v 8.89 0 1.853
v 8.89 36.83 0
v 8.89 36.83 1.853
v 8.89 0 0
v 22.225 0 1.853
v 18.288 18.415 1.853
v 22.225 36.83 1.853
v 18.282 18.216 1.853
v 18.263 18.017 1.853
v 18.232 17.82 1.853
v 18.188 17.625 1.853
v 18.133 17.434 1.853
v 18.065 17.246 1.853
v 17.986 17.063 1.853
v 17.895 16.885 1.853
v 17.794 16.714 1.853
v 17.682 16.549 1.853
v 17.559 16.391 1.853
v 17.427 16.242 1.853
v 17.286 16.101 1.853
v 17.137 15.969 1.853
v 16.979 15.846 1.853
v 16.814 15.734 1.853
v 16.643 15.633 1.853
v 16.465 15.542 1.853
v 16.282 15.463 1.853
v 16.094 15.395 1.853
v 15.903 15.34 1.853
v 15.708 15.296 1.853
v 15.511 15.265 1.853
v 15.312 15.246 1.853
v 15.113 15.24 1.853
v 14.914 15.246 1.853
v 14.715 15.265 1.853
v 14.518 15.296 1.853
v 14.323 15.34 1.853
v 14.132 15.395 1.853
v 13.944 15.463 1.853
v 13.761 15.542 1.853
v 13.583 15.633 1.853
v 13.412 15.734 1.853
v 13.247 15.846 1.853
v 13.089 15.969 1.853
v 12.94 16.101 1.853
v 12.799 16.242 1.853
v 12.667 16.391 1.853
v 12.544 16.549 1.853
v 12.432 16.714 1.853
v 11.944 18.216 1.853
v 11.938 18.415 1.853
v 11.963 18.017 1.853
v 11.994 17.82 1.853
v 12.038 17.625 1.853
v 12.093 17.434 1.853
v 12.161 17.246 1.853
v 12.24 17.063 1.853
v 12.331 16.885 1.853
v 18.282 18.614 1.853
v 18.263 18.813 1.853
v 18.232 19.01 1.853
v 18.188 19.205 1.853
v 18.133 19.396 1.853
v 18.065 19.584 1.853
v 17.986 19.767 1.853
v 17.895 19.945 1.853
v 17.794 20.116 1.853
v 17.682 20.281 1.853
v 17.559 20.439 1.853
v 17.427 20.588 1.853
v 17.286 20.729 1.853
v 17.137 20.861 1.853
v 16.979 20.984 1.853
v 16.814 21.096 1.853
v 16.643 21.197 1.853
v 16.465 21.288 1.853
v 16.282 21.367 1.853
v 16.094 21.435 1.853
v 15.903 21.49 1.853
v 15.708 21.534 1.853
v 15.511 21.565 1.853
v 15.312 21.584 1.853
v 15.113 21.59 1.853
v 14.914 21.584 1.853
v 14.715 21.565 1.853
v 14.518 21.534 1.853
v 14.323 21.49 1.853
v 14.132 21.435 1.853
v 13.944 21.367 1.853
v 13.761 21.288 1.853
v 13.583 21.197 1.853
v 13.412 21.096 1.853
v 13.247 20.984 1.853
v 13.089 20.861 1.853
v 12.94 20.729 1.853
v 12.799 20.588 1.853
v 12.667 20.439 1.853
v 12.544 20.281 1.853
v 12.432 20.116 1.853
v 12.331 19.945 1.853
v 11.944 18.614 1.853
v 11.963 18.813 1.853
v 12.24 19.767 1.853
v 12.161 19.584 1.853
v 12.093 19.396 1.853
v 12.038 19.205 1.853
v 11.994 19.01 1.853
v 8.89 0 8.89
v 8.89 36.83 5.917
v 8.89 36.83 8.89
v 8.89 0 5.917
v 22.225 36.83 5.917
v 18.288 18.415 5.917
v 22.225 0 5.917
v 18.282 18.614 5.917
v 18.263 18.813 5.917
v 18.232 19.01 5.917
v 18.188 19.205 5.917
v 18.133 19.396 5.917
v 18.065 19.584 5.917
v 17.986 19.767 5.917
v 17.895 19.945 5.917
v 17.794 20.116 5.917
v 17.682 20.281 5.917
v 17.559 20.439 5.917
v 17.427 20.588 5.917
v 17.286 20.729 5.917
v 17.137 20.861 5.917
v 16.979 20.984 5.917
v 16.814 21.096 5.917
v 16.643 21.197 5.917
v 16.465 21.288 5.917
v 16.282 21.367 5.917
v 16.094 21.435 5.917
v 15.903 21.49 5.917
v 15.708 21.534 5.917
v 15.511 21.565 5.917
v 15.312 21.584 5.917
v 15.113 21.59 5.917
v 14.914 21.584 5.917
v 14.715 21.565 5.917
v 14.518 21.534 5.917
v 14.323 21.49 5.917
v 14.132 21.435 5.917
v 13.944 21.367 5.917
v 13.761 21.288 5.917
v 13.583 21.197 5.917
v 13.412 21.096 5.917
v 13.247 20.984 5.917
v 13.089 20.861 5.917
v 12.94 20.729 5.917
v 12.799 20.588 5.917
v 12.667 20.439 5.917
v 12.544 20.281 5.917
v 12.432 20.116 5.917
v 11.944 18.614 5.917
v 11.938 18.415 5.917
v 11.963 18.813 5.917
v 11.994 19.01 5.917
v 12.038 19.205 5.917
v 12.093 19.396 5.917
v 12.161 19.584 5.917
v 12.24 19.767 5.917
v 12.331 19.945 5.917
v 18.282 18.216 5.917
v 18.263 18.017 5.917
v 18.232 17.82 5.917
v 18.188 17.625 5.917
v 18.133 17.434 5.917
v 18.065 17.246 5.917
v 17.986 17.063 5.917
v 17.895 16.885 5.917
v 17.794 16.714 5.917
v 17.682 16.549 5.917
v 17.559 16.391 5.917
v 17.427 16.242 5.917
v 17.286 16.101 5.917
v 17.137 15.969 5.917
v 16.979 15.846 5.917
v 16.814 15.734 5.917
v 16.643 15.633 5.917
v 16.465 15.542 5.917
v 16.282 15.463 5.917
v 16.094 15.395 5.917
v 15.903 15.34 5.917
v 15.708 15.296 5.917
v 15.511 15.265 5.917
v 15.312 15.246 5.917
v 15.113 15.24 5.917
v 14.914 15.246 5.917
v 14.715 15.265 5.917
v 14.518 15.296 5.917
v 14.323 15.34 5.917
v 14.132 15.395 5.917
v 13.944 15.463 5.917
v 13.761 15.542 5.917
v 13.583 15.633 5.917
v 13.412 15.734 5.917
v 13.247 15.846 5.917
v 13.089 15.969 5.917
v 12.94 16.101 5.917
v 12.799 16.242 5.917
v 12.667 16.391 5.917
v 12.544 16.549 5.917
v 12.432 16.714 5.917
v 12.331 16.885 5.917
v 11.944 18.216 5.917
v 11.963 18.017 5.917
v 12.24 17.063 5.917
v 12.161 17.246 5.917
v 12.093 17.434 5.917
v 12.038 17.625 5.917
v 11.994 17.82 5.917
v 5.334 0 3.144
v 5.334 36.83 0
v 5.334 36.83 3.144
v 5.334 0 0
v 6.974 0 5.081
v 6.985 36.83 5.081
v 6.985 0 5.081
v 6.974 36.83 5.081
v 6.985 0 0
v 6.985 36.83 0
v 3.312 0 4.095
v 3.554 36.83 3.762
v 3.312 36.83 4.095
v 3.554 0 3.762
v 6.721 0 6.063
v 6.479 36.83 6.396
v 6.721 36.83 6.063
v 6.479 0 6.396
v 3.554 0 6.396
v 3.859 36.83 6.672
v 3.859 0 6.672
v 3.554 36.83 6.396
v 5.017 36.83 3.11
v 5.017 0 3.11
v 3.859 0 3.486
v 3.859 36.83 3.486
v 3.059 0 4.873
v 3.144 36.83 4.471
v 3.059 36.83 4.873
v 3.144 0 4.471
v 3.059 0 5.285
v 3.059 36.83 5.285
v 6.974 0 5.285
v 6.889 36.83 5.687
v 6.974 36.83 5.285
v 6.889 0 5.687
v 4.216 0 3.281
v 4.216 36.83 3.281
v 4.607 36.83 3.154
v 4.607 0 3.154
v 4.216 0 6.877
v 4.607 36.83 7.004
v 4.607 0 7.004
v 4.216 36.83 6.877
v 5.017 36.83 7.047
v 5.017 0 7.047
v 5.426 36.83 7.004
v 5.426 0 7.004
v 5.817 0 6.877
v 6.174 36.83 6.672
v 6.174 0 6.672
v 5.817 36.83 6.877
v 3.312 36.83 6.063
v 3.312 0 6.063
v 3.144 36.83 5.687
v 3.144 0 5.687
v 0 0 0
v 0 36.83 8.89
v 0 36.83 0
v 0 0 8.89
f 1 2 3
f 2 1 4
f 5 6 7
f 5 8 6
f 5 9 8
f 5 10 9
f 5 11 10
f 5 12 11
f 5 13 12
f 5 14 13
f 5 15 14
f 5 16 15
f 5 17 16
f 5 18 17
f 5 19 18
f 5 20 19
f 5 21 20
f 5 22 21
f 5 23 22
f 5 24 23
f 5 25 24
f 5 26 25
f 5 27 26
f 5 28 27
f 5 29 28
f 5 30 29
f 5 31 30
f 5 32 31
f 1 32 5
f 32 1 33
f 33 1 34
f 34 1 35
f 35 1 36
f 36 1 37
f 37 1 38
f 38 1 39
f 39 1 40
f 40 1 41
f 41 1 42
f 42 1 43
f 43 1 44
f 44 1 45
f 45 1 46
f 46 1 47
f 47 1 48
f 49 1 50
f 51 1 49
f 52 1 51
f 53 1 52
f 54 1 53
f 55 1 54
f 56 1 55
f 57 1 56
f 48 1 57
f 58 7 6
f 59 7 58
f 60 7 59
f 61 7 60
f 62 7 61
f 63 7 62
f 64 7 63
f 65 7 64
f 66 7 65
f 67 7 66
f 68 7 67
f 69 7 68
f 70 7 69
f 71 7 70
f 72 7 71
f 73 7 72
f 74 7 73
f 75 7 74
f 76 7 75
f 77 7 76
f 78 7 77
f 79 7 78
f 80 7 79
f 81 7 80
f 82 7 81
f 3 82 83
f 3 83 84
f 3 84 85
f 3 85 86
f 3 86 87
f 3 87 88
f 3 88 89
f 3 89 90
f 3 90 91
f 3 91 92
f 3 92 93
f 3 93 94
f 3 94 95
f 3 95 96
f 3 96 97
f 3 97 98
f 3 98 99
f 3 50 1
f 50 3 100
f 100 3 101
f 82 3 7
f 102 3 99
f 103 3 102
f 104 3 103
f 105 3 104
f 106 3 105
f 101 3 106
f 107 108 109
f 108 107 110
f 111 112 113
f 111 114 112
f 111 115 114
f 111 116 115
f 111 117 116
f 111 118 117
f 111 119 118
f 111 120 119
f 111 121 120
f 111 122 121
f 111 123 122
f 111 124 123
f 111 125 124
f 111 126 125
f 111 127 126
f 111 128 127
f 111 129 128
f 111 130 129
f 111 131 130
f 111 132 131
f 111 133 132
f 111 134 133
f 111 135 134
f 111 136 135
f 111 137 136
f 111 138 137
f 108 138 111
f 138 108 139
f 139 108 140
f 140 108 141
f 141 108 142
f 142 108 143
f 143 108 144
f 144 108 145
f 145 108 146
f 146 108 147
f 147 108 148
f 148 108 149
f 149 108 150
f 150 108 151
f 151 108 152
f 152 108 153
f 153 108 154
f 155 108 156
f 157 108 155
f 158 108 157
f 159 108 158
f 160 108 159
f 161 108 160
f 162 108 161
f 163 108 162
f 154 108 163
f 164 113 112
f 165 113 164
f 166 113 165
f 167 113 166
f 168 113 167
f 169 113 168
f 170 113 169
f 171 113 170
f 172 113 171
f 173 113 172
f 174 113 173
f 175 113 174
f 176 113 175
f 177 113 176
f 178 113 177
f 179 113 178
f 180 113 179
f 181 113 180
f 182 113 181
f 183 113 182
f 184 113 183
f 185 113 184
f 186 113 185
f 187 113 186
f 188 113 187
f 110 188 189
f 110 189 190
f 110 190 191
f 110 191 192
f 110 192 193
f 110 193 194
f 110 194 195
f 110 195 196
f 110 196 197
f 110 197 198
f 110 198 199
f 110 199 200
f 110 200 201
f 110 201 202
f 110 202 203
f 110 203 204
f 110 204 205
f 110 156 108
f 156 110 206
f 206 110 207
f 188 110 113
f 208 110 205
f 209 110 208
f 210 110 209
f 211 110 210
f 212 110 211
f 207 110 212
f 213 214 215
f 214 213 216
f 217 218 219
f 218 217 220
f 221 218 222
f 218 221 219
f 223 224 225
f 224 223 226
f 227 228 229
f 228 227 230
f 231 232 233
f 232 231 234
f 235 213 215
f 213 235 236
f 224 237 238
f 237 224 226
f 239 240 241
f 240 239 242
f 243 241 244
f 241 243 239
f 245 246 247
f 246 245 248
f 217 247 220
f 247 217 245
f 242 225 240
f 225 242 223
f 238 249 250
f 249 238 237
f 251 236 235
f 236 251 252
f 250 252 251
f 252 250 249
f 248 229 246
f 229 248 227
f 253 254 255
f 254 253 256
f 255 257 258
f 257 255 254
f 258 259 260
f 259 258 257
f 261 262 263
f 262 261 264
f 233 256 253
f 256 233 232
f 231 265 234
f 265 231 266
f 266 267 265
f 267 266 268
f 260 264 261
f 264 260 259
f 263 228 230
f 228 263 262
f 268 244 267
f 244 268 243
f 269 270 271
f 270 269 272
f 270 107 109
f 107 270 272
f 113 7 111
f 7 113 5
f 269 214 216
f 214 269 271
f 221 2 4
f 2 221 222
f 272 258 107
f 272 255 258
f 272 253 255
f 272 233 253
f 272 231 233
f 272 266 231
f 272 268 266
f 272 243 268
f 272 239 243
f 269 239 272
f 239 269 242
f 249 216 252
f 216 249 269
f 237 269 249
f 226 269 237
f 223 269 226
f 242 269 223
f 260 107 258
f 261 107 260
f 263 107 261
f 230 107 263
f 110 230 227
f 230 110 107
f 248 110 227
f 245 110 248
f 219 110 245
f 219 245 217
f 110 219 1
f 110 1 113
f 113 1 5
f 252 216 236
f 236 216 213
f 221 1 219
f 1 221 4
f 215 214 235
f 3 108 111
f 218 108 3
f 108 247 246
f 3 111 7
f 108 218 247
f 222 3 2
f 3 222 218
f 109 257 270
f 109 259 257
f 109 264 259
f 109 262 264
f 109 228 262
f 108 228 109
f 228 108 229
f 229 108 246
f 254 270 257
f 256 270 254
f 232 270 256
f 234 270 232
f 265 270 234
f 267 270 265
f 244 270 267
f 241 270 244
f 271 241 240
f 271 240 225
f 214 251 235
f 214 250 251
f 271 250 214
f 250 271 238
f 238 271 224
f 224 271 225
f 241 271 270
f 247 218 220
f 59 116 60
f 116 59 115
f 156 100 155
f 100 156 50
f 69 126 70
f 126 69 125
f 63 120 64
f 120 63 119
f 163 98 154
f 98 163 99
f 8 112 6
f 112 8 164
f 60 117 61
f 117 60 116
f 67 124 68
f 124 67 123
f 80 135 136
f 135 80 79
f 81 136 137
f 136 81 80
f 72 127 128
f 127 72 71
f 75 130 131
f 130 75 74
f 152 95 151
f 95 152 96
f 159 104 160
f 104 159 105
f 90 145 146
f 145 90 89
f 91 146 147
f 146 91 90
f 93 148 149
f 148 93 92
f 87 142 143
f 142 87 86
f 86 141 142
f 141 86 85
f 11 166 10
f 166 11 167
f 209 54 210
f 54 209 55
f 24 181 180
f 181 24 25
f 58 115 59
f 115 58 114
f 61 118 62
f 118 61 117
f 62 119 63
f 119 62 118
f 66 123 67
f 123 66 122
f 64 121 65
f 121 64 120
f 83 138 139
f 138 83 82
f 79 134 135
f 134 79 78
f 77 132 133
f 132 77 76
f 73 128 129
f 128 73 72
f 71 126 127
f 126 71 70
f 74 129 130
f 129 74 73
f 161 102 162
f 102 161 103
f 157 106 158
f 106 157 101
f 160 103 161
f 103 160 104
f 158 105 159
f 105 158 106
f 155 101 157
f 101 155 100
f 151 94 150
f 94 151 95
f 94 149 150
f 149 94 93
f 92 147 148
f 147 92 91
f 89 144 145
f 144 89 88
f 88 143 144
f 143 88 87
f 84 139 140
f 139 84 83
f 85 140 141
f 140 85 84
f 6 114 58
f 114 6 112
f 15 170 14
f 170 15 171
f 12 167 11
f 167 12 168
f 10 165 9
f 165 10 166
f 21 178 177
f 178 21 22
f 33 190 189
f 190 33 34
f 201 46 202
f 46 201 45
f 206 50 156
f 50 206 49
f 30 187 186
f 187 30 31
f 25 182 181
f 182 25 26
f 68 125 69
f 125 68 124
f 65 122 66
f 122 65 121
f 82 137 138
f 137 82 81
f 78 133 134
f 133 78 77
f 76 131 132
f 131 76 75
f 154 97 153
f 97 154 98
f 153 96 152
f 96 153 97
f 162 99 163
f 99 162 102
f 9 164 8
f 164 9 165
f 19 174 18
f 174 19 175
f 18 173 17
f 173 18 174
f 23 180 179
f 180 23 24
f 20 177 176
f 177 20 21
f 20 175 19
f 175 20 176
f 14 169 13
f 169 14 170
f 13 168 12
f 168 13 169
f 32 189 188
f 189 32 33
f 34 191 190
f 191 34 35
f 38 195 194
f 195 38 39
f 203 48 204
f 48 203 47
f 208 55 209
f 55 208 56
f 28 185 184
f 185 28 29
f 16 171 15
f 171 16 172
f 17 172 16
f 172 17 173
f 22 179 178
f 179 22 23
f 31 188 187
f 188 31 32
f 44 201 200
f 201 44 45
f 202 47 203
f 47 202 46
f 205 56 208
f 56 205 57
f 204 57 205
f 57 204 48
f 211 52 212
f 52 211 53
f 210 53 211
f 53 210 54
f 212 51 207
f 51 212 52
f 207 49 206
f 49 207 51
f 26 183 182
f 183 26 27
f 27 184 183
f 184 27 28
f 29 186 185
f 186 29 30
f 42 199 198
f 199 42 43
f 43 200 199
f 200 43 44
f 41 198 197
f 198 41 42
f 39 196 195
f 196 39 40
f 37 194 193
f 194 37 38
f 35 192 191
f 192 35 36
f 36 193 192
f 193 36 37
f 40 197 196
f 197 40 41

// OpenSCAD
// Casement window operator track slider for Andersen windows
// by Drmn4ea (drmn4ea at gmail)
// License: CC BY-SA

// This is a replacement for the small plastic slider whatchamacallit at the end of the 'operator arm'
// for Andersen casement windows. The original part tends to become brittle over time and eventually break off, especially on the sun-facing side of a house.

// This is a dirt simple design based on the original part's dimensions, with a couple 
// minor adjustments for 3D printing. I had the best results, or at least minimal post-finishing,
// printing the part vertically (i.e. with the P-shaped track slot against the buildplate) with a brim.

// Note to actually replace the original part requires cutting off the rivet that used to hold the original
// (unless it also crumbled away). Due to the tight clearance in the channel this retracts into when the window is closed,
// a special low-clearance nut+bolt may be needed (and/or the connector_thickness below tweaked to account for a taller standard bolt head).
// The suitable parts I found has several common names such as barrel nut, binding nut, binding barrel,
// sex bolt (yes, really), surface-mount nut or weld nut.
// Finding barrel nuts (sex nuts etc.) with a small enough diameter to pass through the ~.190" dia hole in the crank operator arm to use it as a bearing may be a challenge though, so you may be better off sizing the 'barrel'
// (smooth on the outside) part to the connector_thickness or vice versa and passing the smaller threaded bolt through as the 'bearing'. It's a little ugly, but seems to work well enough.

// Bounding box dimensions
// The entire part is basically carved out of a cube with the following outside dimensions
y = 1.45 * 25.4; // total track slide length
x = .875 * 25.4; // total depth ("window to crank operator" axis)
z = .350 * 25.4; // total height

slider_total_width = .350 * 25.4; // Portion of the total depth comprising the slotted slider portion as opposed to the thinner crank connection part
slot_edge_distance = .210 * 25.4; // slot distance from front (window side) edge of slider
slot_start_width = .065 * 25.4; // slot width for the narrower bottom part
slot_end_width = .155 * 25.4; // slot width for the wider, upper portion of slot accommodating a bend or similar retention feature in the window track
slot_height = .200 * 25.4; // total height of the guide slot

// Details about the window crank arm connection part
connector_height_offset = .073 * 25.4; // distance between bounding box bottom edge and connector bottom edge
connector_thickness = .160 * 25.4; // thickness (height) of connector part
connector_hole_dia = .250 * 25.4;
connector_hole_edge_offset = .280 * 25.4; // distance between hole center and rear (operator side) edge of crank connector


// Fudge factors for edges that exactly touch, to prevent openscad previews blocking your view with 0-thickness walls
fudge = .001;
double_fudge = 2*fudge;

difference()
{
    // main solid the thingy will get carved from
    cube([x, y, z], center=false);
    
    // thin off the crank connector part
    translate([slider_total_width, -fudge, -fudge])
    {
        cube([x+double_fudge, y+double_fudge, connector_height_offset], center=false);
        translate([0,0,connector_height_offset + connector_thickness])
        {
            cube([x+double_fudge, y+double_fudge, z], center=false);
        }
    }
    
    translate([slot_edge_distance, -fudge, -fudge])
    {
        // Cut the slot...
        // Starting (lower/narrower) portion
        cube([slot_start_width, y+double_fudge, slot_height+double_fudge], center=false);
        
        // Larger opening, kind of tangent to the far edge of the narrow part of the slot
        translate([-((slot_end_width/2)-slot_start_width),0,slot_height])
        {
            // Already at the start of the slot
            rotate([-90, -30, 0])
            {
                cylinder(h=y+double_fudge, d=slot_end_width, center=false, $fn=30);
            }

        }
    }
    
    // Crank connection hole
    translate([x-connector_hole_edge_offset, y/2, 0])
    {
        cylinder(h=z, d=connector_hole_dia, center=false, $fn=100);
    }
}
